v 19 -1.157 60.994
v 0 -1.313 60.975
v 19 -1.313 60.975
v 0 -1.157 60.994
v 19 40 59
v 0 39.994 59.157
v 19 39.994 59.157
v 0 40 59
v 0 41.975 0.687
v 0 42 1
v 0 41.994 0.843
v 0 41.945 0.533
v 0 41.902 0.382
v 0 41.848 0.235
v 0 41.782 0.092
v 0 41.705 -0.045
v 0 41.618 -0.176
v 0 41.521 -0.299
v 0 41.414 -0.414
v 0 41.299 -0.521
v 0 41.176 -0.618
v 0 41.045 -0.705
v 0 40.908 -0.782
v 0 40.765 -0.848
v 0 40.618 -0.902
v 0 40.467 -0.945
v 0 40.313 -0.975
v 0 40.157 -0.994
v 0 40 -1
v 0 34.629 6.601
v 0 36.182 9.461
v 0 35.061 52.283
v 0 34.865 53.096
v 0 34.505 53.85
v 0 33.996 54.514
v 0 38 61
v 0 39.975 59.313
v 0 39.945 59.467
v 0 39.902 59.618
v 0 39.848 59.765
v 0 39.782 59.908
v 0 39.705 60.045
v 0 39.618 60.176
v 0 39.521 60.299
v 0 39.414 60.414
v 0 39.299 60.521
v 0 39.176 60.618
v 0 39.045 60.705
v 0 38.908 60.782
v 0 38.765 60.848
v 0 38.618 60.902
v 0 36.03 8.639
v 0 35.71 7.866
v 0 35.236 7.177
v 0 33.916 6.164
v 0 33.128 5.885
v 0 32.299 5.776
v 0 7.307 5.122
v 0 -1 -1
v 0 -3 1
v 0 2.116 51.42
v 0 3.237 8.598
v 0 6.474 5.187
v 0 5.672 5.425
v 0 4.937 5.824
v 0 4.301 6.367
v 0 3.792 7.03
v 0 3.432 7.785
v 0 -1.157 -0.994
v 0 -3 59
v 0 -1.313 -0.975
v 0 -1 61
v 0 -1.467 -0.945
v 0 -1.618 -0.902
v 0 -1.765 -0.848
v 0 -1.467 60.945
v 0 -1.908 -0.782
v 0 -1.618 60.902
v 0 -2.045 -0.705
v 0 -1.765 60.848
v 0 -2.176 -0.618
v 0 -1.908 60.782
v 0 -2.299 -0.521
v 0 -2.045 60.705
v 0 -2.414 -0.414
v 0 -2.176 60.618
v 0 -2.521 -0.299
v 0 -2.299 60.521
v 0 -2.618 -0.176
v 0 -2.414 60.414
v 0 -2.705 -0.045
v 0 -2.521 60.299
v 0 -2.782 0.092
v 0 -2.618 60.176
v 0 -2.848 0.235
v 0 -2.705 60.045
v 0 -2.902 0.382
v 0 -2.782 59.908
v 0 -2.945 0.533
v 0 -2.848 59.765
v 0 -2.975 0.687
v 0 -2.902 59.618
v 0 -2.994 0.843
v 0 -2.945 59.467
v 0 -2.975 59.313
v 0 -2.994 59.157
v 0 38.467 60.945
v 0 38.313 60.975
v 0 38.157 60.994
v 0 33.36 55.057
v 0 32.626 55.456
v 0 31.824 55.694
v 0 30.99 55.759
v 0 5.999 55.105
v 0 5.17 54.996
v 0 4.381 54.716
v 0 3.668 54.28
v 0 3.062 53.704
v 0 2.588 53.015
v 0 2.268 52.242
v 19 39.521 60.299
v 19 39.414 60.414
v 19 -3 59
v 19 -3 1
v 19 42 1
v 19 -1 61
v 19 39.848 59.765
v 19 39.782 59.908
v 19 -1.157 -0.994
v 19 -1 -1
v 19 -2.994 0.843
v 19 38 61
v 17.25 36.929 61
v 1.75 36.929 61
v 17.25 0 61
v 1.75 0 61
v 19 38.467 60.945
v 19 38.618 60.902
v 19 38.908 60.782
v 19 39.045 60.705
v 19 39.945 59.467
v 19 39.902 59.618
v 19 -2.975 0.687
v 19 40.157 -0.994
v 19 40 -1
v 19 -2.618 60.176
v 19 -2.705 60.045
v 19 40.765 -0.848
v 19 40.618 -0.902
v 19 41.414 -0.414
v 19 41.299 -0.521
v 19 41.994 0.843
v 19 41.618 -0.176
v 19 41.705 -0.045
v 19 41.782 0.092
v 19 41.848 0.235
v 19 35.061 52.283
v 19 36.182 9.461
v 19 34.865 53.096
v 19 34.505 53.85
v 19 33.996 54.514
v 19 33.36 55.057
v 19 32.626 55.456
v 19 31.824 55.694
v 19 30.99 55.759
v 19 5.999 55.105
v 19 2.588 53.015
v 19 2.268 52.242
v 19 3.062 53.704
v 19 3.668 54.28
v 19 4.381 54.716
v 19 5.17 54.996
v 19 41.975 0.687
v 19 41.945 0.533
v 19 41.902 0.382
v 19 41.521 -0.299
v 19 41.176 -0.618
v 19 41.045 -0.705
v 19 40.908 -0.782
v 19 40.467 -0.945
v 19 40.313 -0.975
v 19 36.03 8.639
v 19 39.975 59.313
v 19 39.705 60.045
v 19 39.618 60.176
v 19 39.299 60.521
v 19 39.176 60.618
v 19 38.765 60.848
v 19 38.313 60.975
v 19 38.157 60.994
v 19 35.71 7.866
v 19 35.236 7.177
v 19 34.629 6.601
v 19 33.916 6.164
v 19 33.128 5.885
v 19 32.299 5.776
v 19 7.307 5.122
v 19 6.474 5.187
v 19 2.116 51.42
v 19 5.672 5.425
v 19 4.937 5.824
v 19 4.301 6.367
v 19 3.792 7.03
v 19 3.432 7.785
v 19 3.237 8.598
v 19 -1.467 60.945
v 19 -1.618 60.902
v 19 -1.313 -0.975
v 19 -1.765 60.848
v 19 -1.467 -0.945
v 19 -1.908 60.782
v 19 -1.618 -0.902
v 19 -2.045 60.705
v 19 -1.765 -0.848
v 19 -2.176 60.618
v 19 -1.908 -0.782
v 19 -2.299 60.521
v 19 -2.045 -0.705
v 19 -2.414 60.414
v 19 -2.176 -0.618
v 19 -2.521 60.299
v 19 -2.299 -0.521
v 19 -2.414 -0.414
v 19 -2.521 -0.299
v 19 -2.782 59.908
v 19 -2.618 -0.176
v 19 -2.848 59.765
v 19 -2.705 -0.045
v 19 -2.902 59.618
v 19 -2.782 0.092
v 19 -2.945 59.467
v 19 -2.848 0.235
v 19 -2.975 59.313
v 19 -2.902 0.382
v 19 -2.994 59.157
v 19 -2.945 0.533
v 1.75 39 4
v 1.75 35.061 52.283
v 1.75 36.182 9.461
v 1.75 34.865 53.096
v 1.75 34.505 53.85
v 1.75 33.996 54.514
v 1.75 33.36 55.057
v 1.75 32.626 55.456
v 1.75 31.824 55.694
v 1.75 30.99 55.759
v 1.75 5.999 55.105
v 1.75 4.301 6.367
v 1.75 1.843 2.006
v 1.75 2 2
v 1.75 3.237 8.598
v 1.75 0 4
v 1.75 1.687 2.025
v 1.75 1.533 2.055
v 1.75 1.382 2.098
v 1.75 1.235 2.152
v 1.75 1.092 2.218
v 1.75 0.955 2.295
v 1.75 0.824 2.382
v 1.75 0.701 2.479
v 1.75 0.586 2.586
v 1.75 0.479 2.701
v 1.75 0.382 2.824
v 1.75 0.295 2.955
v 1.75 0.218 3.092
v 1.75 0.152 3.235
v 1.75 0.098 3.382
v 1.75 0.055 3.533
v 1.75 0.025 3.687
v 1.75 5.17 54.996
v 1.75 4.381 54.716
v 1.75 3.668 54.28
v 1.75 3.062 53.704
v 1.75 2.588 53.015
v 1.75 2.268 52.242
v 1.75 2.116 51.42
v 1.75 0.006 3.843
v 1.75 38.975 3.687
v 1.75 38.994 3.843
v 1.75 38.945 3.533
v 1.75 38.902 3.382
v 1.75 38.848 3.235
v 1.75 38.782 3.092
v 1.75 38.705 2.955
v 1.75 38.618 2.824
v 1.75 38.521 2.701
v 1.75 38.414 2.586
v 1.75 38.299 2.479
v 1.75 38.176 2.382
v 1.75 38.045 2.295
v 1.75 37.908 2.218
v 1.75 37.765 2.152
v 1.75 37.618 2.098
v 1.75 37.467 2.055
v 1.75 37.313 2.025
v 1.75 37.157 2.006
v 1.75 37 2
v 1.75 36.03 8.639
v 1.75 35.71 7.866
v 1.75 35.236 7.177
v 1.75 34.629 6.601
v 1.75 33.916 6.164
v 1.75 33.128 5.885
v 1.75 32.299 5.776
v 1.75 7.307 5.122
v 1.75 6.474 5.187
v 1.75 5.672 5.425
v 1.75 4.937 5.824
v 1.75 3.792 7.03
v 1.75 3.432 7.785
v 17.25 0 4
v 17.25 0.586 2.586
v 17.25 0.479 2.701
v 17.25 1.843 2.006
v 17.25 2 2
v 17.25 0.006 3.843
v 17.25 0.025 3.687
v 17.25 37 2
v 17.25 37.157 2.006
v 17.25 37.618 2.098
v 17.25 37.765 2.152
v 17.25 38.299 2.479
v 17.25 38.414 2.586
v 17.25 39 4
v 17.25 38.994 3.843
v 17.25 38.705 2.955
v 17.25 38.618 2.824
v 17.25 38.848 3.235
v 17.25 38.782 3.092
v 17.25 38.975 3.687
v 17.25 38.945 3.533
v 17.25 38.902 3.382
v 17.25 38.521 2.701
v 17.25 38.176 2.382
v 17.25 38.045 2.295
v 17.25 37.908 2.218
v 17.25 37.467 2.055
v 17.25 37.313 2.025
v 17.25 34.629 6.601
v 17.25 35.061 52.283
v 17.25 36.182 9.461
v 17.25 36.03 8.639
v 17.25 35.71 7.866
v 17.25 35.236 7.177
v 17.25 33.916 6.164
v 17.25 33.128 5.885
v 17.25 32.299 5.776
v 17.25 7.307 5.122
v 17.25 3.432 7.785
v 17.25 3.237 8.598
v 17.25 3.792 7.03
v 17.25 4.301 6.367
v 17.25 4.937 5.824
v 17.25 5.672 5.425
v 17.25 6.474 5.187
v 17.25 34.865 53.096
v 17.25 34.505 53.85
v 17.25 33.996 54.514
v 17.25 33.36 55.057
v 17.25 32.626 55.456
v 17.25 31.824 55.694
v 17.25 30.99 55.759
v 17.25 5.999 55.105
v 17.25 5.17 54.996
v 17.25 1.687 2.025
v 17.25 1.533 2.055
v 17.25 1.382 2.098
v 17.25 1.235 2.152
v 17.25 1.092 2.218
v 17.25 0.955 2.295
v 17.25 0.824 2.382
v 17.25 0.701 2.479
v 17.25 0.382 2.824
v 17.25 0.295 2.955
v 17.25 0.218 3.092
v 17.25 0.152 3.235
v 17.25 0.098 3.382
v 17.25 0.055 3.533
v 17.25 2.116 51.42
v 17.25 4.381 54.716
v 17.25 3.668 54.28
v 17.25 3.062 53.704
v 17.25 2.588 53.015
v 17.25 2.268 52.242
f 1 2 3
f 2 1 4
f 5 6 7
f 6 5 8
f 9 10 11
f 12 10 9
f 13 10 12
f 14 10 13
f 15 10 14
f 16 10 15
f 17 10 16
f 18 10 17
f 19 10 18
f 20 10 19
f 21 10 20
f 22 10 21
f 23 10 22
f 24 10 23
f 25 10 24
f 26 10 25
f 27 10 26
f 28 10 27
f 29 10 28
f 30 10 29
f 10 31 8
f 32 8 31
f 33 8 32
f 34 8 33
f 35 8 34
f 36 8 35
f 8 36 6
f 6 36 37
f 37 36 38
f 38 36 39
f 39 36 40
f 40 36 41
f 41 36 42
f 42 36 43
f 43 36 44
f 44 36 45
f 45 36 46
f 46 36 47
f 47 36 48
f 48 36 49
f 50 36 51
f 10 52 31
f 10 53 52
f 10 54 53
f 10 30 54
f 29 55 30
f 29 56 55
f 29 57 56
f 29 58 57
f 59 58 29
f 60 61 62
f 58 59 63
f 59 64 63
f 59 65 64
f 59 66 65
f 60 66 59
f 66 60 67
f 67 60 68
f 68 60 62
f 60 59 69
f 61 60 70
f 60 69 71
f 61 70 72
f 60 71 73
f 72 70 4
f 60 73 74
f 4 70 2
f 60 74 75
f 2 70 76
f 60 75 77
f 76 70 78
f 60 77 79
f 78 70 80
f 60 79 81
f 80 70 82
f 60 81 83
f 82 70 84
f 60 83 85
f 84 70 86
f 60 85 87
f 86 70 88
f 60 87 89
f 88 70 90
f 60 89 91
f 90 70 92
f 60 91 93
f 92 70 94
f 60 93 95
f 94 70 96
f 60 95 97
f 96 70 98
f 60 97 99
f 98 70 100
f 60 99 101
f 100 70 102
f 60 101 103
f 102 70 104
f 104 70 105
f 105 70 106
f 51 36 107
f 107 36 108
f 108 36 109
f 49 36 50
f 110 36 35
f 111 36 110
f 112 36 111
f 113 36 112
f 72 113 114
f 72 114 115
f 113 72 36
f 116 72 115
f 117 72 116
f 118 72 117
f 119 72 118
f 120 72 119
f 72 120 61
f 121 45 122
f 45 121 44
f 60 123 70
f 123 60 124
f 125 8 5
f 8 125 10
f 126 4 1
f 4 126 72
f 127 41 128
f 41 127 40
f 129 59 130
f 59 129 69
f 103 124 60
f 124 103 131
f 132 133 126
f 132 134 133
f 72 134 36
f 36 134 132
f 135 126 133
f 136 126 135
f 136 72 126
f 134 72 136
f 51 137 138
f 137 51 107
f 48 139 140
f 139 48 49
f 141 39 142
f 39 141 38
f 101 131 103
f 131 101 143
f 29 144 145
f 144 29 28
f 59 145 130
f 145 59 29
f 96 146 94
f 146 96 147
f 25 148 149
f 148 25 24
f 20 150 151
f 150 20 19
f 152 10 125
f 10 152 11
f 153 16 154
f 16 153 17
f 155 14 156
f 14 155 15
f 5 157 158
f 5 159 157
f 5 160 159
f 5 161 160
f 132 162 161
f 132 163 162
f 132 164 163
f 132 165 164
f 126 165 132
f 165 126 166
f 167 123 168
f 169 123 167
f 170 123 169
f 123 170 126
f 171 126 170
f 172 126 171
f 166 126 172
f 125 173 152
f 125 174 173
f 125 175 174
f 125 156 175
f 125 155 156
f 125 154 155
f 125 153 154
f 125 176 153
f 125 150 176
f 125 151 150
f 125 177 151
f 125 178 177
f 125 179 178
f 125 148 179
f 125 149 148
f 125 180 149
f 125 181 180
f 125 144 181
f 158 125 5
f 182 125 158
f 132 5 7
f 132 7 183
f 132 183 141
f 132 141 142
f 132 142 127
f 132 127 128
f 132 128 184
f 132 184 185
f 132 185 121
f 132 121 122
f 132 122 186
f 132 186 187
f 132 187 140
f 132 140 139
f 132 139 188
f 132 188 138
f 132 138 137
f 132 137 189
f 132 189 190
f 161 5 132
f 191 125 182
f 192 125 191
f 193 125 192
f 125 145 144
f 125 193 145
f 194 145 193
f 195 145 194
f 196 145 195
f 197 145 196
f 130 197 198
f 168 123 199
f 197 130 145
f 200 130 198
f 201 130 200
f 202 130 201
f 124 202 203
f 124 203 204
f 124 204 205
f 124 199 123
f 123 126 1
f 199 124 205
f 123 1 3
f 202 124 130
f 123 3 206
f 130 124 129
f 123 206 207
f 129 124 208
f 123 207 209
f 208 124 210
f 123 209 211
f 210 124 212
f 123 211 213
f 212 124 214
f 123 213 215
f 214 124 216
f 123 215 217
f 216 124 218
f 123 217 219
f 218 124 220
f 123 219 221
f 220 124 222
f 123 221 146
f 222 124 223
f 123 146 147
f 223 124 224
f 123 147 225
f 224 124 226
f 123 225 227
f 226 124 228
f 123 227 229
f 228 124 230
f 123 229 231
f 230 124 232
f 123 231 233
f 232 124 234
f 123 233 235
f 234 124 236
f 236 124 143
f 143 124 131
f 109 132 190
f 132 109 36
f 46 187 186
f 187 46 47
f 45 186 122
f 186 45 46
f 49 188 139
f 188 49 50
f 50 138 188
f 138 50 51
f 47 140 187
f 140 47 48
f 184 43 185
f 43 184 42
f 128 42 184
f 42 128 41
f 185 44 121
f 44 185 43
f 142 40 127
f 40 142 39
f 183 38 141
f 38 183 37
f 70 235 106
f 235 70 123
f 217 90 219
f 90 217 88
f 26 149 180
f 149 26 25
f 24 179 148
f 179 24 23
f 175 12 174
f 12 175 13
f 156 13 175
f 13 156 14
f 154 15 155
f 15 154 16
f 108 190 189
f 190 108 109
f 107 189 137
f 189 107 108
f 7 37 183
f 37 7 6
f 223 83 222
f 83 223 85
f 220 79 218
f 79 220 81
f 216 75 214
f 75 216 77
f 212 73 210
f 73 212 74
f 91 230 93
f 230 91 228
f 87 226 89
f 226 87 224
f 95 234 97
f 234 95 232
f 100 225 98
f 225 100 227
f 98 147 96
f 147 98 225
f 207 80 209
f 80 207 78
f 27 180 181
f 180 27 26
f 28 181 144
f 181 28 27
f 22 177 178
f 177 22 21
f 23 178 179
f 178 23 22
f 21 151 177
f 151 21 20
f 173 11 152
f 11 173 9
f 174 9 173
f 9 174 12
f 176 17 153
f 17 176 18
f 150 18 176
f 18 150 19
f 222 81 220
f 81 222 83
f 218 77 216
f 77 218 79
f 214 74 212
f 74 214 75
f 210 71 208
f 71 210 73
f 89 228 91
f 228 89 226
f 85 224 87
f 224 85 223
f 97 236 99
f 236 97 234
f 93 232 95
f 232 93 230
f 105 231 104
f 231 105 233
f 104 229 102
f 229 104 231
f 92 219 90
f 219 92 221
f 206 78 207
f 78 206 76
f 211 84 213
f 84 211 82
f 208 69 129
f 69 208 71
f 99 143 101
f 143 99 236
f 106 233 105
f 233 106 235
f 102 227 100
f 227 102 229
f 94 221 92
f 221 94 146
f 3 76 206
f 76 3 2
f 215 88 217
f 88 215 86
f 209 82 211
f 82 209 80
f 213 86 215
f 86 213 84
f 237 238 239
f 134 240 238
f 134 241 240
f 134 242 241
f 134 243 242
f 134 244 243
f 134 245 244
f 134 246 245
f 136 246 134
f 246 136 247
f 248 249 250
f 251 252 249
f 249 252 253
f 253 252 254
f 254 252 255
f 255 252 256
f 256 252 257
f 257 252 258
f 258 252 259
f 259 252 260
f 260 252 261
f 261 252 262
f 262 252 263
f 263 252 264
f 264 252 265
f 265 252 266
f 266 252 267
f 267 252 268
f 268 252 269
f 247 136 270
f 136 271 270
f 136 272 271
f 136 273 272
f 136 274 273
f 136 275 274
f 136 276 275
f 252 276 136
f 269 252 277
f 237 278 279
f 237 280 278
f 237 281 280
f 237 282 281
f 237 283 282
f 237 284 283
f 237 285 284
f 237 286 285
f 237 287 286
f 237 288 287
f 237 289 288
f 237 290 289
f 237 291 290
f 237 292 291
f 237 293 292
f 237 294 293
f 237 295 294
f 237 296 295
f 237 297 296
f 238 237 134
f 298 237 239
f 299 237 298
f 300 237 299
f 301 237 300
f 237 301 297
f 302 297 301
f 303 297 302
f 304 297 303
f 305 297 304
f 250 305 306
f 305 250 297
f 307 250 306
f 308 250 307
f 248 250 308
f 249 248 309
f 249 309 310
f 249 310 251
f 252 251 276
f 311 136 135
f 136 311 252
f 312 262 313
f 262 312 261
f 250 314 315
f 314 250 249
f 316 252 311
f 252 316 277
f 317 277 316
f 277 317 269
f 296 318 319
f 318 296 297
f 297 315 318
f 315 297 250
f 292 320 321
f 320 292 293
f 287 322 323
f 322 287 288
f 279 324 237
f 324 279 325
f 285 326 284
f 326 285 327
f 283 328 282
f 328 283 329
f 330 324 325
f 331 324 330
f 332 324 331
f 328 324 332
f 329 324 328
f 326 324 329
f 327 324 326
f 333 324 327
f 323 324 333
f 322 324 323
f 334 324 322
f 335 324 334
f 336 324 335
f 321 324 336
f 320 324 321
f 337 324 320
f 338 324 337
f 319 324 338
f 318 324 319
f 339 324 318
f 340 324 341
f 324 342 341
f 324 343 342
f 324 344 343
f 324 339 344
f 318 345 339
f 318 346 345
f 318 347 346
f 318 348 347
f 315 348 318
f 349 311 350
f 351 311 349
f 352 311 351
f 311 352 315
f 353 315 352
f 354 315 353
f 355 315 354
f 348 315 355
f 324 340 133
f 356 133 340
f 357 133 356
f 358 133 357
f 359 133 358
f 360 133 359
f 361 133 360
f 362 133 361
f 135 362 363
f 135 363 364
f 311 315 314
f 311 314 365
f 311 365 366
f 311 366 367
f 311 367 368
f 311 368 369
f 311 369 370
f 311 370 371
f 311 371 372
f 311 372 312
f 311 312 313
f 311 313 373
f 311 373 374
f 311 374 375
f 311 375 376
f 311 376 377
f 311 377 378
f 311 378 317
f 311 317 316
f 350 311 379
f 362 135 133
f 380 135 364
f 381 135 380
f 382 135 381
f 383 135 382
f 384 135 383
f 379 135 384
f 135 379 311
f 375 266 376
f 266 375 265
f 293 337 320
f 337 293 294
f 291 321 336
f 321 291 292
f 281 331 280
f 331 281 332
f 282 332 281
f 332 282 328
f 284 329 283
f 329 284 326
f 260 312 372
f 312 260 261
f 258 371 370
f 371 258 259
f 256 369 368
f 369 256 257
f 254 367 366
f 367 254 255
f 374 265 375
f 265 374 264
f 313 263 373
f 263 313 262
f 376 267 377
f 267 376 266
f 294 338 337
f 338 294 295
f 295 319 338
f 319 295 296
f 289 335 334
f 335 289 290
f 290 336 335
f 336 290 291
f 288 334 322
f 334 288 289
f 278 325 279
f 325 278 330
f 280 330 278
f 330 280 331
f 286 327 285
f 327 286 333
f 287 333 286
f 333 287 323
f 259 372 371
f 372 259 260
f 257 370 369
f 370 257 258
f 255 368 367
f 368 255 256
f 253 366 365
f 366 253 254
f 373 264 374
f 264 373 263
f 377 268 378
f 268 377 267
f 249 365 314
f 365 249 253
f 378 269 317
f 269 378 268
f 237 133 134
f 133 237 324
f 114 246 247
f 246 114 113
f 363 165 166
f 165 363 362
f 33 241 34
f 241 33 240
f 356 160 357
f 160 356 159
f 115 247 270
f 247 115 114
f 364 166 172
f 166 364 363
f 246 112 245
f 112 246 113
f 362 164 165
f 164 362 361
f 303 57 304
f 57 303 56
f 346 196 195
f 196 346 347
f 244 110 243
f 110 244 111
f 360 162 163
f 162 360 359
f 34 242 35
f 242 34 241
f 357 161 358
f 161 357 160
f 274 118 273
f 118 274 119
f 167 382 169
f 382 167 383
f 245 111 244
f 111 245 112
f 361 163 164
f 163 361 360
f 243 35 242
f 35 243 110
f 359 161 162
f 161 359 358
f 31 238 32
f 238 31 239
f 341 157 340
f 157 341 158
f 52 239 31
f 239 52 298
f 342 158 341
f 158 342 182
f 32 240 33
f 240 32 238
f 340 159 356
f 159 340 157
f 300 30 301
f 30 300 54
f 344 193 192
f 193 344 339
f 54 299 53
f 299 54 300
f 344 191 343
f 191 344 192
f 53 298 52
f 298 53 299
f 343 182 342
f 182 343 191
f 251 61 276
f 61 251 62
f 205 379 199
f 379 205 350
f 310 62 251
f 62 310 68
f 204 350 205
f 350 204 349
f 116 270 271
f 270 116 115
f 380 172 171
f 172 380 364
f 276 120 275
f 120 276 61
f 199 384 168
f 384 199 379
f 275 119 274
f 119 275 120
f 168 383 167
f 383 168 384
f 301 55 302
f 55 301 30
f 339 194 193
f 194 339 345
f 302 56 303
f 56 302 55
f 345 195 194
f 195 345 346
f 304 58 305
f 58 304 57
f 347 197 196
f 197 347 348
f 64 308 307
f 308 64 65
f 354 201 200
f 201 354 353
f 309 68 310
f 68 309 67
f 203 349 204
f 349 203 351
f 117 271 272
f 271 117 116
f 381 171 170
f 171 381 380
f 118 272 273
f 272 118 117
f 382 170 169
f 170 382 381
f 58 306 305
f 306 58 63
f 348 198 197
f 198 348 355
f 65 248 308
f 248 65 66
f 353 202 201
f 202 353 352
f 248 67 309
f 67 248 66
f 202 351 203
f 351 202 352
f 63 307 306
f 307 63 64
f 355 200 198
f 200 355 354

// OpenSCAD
// file: roundedcube.scad
$fn=30;
// roundedcube(10,10,10,2,true);

minkowski_custom_cube(10,10,10,1, true);



module roundedcube(xdim, ydim, zdim, rad, center) {
// wenn rad  = 0 -> = 0.0001


	if (center==true) {
		hull() {
			translate([xdim/2-rad,-ydim/2+rad,-zdim/2])cylinder(zdim, r=rad+0.0001);
			translate([-xdim/2+rad,-ydim/2+rad,-zdim/2])cylinder(zdim, r=rad+0.0001);
			
			translate([xdim/2-rad,ydim/2-rad,-zdim/2])cylinder(zdim, r=rad+0.0001);
			translate([-xdim/2+rad,ydim/2-rad,-zdim/2])cylinder(zdim, r=rad+0.0001);
		}
	} else {
		hull() {
			translate([rad,rad,0])cylinder(zdim, r=rad+0.0001);
			translate([xdim-rad,ydim-rad,0])cylinder(zdim, r=rad+0.0001);
			translate([rad,ydim-rad,0])cylinder(zdim, r=rad+0.0001);
			translate([xdim-rad,rad,0])cylinder(zdim, r=rad+0.0001);
		}
	}
}


module minkowski_custom_cube(xdim, ydim, zdim, rad, center){
	if(center==true) {
		translate([-xdim/2,-ydim/2,-zdim/2])createCube(xdim, ydim, zdim, rad);
	} else {
		createCube(xdim, ydim, zdim, rad);
	}
}

module createCube(xdim, ydim, zdim, rad){
	for(i=[xdim, ydim, zdim]){
		if (i/2 < rad) {
			echo("Warnung: Radius groesser als Kantenlaenge! Wuerfel wird zur Kugel expandiert.");
		}
	}

	translate([rad,rad,rad])minkowski(){
		cube([xdim-2*rad, ydim-2*rad, zdim-2*rad]);
		sphere(rad);
	}
}
// main file
use <roundedcube.scad>
$fn=80;
rotate([0,90,0])translate([-59,0,0])

difference()
{
	hull(){
		translate([0,-1,0])cylinder(r=2,19);
		translate([0,37+3-2,0])cylinder(r=2,19);
		translate([57+3-2,-1,0])cylinder(r=2,19);
		translate([57+3-2,39+3-2,0])cylinder(r=2,19);
	}

	translate([0,0,(19-15.5)/2])hull(){
		translate([0,2,0])cylinder(r=2,15.5);
		translate([0,37-2,0])cylinder(r=2,15.5);
		translate([57-2,2,0])cylinder(r=2,15.5);
		translate([57-2,39-2,0])cylinder(r=2,15.5);
	}

	translate([0,0,(19-15.5)/2])hull(){
		translate([-5,2,0])cylinder(r=2,15.5);
		translate([-5,37-2-.18,0])cylinder(r=2,15.5);
		translate([57-2,2,0])cylinder(r=2,15.5);
		translate([57-2,39-2,0])cylinder(r=2,15.5);
	}
			translate([4,2,-1])rotate([0,0,1.5])roundedcube(50,33,30,4, false);
}
